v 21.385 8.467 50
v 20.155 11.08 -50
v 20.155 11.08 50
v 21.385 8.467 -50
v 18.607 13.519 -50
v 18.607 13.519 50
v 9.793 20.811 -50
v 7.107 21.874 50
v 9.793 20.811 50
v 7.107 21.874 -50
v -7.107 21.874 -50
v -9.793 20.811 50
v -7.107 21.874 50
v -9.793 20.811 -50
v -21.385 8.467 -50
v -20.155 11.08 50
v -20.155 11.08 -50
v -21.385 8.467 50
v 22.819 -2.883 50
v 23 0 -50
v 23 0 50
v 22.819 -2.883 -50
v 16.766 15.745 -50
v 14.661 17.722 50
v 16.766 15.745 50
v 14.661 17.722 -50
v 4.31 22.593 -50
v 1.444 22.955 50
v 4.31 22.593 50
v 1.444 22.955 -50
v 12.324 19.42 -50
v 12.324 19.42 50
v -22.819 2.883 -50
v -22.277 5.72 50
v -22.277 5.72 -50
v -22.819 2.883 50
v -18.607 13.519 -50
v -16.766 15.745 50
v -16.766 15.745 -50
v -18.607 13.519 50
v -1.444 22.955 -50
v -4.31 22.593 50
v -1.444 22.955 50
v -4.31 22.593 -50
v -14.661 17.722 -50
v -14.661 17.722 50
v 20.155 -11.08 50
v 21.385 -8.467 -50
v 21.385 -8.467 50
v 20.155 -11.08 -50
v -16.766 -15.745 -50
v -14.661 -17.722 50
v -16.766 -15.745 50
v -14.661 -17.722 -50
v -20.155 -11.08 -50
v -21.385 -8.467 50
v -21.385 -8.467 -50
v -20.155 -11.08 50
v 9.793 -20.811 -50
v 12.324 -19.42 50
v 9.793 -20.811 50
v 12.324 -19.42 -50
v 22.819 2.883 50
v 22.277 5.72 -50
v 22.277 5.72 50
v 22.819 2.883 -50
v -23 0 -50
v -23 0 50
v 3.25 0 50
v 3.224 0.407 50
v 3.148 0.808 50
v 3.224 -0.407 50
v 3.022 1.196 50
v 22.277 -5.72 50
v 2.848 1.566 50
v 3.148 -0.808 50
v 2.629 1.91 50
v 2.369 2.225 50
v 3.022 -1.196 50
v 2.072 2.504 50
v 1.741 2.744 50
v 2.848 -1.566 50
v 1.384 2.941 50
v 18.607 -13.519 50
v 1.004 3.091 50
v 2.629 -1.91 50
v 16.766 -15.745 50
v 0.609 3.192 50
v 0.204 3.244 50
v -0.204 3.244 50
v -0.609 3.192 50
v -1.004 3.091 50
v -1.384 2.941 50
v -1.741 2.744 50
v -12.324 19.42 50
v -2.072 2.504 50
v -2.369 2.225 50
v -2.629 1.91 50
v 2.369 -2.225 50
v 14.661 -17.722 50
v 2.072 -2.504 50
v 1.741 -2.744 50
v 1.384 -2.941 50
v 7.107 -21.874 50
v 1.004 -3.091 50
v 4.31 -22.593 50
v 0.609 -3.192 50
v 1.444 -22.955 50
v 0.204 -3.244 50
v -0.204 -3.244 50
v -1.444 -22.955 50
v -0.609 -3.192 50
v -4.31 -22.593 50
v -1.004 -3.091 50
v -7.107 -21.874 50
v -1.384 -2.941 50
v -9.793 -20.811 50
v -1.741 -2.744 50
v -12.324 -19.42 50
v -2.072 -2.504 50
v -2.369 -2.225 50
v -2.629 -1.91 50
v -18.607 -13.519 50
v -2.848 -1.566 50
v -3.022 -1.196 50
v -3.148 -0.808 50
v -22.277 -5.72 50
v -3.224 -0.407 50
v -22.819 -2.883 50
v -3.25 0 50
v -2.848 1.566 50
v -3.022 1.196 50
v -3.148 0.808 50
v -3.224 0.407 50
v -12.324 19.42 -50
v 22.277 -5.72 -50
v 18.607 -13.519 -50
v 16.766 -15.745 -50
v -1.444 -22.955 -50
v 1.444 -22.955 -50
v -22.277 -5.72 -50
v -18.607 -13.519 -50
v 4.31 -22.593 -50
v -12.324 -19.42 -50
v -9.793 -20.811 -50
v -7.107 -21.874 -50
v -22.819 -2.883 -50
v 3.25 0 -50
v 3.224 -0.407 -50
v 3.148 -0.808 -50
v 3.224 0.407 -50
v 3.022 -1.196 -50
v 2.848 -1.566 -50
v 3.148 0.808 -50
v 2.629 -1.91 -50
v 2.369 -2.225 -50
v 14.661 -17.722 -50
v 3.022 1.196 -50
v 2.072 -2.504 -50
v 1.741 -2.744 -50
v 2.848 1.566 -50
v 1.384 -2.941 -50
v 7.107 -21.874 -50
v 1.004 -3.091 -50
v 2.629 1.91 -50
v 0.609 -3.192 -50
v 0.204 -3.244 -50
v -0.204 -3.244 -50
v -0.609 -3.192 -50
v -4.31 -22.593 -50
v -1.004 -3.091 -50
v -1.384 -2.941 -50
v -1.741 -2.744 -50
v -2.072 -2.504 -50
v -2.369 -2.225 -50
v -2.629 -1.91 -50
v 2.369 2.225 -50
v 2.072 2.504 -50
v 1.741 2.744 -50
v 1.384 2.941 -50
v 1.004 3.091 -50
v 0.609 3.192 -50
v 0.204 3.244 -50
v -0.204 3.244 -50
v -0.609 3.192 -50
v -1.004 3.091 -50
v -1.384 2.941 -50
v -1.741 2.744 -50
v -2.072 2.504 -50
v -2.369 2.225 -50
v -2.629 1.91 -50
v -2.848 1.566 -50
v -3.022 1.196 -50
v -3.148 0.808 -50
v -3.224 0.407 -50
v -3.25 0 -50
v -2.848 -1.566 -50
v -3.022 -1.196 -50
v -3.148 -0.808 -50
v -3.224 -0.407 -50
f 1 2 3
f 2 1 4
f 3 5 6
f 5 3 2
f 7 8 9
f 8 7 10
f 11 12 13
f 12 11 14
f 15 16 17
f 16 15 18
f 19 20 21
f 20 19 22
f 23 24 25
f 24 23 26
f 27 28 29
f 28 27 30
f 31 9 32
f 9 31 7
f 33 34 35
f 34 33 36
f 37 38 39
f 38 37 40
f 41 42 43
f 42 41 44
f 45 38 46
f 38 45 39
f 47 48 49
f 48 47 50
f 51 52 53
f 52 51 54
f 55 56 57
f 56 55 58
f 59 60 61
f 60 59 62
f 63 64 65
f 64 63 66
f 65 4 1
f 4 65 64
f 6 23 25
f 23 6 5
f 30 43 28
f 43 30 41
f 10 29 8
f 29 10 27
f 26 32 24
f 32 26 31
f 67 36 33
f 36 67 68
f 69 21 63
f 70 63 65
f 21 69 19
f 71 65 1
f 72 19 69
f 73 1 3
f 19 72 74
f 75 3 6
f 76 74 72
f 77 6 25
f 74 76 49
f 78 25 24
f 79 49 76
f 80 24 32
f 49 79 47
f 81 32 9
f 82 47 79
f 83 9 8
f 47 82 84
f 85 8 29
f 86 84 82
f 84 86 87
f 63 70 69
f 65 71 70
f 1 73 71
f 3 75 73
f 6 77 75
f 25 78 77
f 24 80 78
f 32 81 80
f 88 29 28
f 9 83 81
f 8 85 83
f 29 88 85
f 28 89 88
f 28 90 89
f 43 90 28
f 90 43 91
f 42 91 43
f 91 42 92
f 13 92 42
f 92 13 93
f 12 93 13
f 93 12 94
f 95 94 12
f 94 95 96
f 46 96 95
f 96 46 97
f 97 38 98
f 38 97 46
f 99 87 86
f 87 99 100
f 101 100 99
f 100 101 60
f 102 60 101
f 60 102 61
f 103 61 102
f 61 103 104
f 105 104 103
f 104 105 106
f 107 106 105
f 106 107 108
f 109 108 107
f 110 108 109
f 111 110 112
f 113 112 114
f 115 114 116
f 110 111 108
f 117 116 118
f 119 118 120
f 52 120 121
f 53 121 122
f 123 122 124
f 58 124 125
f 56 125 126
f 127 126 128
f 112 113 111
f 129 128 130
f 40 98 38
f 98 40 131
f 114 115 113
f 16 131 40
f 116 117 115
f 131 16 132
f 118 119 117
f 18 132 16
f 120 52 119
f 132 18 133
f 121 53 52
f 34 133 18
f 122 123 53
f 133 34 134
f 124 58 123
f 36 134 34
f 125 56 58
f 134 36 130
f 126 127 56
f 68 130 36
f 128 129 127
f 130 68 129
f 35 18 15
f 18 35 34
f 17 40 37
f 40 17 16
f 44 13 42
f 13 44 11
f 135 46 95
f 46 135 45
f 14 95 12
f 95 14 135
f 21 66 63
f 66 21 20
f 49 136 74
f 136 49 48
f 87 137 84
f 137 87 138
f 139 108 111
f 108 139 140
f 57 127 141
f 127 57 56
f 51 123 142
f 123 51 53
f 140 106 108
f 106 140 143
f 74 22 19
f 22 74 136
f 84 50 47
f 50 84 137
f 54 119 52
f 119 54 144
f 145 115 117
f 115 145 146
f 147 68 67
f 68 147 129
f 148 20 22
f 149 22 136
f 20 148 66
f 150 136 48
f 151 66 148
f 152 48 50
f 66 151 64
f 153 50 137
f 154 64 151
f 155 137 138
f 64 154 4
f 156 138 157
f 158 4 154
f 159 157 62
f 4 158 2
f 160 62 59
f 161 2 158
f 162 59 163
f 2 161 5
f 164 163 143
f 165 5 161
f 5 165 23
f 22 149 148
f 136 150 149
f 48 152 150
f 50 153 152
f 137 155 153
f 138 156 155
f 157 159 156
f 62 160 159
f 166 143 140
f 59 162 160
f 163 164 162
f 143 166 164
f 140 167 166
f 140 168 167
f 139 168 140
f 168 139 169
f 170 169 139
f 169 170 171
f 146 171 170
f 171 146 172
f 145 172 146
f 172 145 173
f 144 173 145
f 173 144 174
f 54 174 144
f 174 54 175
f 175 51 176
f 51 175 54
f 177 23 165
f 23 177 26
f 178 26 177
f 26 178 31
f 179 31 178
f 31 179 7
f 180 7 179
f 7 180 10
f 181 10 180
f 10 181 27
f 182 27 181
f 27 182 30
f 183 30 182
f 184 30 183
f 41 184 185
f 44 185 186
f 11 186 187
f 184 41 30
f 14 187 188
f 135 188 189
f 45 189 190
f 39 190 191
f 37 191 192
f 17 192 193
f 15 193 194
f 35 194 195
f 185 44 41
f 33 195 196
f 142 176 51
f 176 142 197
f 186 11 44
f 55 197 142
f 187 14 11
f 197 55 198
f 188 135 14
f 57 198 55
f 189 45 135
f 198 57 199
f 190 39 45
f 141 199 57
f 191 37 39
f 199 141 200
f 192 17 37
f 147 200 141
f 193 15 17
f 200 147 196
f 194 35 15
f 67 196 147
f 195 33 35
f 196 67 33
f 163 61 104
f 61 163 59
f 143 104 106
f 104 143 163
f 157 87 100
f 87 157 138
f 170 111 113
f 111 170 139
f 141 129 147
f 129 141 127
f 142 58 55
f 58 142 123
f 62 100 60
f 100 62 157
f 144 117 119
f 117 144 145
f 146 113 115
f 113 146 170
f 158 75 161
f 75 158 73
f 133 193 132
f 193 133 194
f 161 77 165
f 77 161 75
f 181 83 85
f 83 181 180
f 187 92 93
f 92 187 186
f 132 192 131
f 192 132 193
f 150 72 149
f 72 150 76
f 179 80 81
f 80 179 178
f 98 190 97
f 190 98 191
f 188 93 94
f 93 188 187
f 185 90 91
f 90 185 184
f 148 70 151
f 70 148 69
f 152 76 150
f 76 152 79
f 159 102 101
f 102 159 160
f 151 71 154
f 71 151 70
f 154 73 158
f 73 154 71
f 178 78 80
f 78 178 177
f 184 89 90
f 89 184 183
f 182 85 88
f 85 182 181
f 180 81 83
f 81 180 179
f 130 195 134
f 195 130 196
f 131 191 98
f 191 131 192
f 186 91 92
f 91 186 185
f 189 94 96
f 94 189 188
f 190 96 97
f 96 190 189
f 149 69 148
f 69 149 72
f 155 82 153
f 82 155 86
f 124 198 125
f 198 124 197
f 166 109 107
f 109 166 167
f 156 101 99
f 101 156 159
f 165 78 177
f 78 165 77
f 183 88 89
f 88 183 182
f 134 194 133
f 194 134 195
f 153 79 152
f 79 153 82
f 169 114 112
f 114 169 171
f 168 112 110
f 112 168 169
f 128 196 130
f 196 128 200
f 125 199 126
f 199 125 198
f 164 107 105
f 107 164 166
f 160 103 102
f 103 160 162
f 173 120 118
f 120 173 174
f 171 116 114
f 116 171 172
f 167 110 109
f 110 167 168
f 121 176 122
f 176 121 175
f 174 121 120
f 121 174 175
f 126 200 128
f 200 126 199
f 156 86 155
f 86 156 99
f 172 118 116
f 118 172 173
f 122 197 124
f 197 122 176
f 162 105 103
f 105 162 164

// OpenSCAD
$fn = 50;


difference() {
	union() {
		translate(v = [0, 0, -50.0000000000]) {
			cylinder(h = 100, r = 23.0000000000);
		}
	}
	union() {
		translate(v = [0, 0, -100.0000000000]) {
			cylinder(h = 200, r = 3.2500000000);
		}
	}
}
